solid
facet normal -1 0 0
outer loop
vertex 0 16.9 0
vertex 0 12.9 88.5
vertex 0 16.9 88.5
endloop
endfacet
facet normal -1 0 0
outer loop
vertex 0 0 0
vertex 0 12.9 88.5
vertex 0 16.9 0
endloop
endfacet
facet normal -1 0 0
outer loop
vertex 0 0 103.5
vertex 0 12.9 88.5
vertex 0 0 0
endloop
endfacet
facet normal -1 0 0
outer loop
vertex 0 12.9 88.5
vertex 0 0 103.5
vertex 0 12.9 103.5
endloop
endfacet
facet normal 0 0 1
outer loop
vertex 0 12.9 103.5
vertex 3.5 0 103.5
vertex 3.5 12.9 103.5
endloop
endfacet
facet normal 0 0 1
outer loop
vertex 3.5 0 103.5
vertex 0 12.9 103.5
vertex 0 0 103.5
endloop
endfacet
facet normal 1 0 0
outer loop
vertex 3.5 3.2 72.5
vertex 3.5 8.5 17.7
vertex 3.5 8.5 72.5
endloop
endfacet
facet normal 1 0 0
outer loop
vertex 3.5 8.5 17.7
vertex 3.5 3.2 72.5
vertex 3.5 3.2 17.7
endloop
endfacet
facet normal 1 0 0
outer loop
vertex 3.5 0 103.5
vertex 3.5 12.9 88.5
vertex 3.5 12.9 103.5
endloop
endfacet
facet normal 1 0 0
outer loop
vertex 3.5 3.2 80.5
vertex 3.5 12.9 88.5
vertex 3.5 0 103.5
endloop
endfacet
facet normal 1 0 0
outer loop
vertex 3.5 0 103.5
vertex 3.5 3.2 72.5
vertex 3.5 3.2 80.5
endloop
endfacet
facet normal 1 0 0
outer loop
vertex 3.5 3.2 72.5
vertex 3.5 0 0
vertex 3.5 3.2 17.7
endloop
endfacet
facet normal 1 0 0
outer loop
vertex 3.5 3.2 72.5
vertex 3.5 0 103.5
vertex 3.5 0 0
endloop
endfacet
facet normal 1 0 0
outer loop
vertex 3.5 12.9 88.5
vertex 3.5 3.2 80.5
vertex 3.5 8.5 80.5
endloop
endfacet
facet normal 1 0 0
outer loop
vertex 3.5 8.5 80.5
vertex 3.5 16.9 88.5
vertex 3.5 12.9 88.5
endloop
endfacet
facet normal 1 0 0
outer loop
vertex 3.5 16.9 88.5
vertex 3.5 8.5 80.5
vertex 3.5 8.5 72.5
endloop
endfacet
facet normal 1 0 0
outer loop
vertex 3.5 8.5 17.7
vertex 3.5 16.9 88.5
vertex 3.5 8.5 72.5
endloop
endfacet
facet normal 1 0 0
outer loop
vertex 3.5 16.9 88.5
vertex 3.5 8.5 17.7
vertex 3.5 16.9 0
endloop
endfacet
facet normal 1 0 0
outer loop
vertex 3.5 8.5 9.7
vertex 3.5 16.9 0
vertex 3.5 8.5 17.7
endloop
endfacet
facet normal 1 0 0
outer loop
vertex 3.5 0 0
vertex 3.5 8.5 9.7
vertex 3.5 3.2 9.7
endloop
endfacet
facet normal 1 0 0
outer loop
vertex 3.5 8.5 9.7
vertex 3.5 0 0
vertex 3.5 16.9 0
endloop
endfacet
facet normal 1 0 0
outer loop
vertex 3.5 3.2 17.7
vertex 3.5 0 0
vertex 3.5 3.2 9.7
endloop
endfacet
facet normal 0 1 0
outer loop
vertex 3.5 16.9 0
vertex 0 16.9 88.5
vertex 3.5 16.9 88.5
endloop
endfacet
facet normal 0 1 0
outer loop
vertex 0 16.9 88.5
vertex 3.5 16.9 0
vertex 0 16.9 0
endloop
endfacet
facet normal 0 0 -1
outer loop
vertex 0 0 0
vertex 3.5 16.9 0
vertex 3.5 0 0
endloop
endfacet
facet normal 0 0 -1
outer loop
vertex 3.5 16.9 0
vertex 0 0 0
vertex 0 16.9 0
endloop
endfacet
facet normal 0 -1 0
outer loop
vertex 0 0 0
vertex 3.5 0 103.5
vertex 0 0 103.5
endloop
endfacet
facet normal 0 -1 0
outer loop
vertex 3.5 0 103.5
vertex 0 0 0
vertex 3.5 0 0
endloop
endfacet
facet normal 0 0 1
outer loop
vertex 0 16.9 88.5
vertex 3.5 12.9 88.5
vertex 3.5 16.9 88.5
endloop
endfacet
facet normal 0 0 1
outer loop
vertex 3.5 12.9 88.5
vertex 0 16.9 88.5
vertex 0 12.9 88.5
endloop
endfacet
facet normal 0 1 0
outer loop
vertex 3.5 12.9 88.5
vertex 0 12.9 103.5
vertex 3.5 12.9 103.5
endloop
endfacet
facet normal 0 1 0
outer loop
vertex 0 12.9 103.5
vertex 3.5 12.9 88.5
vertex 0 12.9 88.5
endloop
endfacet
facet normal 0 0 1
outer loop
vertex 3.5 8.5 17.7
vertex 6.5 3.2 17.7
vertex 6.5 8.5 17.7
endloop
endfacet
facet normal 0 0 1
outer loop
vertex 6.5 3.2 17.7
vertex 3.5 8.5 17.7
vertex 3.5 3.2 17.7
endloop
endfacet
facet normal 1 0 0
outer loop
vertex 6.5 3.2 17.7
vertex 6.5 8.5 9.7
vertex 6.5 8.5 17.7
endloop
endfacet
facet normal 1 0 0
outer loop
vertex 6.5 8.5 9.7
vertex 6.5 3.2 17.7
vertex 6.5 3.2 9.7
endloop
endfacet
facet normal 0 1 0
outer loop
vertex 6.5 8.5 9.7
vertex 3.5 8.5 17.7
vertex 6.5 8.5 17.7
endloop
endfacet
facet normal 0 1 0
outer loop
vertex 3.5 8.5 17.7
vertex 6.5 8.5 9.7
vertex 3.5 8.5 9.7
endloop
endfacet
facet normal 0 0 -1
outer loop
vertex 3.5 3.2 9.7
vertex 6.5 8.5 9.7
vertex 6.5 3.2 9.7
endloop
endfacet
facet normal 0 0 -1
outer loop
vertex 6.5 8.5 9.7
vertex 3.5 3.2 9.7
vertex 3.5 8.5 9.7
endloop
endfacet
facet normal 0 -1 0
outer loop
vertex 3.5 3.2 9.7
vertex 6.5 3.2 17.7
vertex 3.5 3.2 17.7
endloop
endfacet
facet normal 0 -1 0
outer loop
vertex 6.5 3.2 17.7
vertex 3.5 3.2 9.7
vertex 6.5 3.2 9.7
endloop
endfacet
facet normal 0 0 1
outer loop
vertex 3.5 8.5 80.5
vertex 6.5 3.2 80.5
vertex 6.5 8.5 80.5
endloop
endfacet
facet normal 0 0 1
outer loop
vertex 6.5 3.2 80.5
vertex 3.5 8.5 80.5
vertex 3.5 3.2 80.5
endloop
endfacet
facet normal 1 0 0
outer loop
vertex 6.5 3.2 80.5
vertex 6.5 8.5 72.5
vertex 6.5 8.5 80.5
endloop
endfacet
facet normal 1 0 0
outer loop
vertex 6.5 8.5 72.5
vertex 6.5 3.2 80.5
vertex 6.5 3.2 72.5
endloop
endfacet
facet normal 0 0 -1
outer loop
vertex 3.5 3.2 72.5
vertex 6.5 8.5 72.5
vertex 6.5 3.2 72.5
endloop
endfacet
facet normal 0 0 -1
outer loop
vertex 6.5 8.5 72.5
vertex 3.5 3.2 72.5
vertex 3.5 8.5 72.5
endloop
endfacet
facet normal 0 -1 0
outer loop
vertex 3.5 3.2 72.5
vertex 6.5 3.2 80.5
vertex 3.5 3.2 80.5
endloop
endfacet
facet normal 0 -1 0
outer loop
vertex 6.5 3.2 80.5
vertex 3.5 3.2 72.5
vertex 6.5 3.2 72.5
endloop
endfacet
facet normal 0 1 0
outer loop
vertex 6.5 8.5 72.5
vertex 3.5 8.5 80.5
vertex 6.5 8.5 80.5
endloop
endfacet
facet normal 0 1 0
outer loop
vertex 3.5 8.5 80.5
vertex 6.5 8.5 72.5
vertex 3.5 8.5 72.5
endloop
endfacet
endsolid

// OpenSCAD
// file: Adapter_config.scad
adaptateur_ep = (300.5-286.5)/4;
adaptateur_ht = 103.5;
adaptateur_pf = 16.90;

onglet_ht = 15;
onglet_ep = 4;
onglet_ec = 2.5;

$fn = 50;
// main file
include <Adapter_config.scad>;

module adaptateur_droit_ext()
{
    rect1_sx = 3;
    rect1_sy = 5.3;
    rect1_sz = 8;
    rect1_att_ht = 9.7;
    rect1_att_dc = -2.6;

    rect2_sx = 3;
    rect2_sy = 5.3;
    rect2_sz = 8;
    rect2_att_ht = 72.5;
    rect2_att_dc = -2.6;

    union()
    {
        difference()
        {
            cube([adaptateur_ep, adaptateur_pf, adaptateur_ht]);
            
            color("orange")
            translate([-0.1,adaptateur_pf-onglet_ep,adaptateur_ht-onglet_ht])
            cube([adaptateur_ep+0.2,onglet_ep+0.1,onglet_ht+0.1]);
        }
        translate([adaptateur_ep, adaptateur_pf/2-rect1_sy/2+rect1_att_dc, rect1_att_ht])
        cube([rect1_sx, rect1_sy, rect1_sz]);
        
        translate([adaptateur_ep, adaptateur_pf/2-rect2_sy/2+rect2_att_dc, rect2_att_ht])
        cube([rect2_sx, rect2_sy, rect2_sz]);
    }
}

adaptateur_droit_ext();
